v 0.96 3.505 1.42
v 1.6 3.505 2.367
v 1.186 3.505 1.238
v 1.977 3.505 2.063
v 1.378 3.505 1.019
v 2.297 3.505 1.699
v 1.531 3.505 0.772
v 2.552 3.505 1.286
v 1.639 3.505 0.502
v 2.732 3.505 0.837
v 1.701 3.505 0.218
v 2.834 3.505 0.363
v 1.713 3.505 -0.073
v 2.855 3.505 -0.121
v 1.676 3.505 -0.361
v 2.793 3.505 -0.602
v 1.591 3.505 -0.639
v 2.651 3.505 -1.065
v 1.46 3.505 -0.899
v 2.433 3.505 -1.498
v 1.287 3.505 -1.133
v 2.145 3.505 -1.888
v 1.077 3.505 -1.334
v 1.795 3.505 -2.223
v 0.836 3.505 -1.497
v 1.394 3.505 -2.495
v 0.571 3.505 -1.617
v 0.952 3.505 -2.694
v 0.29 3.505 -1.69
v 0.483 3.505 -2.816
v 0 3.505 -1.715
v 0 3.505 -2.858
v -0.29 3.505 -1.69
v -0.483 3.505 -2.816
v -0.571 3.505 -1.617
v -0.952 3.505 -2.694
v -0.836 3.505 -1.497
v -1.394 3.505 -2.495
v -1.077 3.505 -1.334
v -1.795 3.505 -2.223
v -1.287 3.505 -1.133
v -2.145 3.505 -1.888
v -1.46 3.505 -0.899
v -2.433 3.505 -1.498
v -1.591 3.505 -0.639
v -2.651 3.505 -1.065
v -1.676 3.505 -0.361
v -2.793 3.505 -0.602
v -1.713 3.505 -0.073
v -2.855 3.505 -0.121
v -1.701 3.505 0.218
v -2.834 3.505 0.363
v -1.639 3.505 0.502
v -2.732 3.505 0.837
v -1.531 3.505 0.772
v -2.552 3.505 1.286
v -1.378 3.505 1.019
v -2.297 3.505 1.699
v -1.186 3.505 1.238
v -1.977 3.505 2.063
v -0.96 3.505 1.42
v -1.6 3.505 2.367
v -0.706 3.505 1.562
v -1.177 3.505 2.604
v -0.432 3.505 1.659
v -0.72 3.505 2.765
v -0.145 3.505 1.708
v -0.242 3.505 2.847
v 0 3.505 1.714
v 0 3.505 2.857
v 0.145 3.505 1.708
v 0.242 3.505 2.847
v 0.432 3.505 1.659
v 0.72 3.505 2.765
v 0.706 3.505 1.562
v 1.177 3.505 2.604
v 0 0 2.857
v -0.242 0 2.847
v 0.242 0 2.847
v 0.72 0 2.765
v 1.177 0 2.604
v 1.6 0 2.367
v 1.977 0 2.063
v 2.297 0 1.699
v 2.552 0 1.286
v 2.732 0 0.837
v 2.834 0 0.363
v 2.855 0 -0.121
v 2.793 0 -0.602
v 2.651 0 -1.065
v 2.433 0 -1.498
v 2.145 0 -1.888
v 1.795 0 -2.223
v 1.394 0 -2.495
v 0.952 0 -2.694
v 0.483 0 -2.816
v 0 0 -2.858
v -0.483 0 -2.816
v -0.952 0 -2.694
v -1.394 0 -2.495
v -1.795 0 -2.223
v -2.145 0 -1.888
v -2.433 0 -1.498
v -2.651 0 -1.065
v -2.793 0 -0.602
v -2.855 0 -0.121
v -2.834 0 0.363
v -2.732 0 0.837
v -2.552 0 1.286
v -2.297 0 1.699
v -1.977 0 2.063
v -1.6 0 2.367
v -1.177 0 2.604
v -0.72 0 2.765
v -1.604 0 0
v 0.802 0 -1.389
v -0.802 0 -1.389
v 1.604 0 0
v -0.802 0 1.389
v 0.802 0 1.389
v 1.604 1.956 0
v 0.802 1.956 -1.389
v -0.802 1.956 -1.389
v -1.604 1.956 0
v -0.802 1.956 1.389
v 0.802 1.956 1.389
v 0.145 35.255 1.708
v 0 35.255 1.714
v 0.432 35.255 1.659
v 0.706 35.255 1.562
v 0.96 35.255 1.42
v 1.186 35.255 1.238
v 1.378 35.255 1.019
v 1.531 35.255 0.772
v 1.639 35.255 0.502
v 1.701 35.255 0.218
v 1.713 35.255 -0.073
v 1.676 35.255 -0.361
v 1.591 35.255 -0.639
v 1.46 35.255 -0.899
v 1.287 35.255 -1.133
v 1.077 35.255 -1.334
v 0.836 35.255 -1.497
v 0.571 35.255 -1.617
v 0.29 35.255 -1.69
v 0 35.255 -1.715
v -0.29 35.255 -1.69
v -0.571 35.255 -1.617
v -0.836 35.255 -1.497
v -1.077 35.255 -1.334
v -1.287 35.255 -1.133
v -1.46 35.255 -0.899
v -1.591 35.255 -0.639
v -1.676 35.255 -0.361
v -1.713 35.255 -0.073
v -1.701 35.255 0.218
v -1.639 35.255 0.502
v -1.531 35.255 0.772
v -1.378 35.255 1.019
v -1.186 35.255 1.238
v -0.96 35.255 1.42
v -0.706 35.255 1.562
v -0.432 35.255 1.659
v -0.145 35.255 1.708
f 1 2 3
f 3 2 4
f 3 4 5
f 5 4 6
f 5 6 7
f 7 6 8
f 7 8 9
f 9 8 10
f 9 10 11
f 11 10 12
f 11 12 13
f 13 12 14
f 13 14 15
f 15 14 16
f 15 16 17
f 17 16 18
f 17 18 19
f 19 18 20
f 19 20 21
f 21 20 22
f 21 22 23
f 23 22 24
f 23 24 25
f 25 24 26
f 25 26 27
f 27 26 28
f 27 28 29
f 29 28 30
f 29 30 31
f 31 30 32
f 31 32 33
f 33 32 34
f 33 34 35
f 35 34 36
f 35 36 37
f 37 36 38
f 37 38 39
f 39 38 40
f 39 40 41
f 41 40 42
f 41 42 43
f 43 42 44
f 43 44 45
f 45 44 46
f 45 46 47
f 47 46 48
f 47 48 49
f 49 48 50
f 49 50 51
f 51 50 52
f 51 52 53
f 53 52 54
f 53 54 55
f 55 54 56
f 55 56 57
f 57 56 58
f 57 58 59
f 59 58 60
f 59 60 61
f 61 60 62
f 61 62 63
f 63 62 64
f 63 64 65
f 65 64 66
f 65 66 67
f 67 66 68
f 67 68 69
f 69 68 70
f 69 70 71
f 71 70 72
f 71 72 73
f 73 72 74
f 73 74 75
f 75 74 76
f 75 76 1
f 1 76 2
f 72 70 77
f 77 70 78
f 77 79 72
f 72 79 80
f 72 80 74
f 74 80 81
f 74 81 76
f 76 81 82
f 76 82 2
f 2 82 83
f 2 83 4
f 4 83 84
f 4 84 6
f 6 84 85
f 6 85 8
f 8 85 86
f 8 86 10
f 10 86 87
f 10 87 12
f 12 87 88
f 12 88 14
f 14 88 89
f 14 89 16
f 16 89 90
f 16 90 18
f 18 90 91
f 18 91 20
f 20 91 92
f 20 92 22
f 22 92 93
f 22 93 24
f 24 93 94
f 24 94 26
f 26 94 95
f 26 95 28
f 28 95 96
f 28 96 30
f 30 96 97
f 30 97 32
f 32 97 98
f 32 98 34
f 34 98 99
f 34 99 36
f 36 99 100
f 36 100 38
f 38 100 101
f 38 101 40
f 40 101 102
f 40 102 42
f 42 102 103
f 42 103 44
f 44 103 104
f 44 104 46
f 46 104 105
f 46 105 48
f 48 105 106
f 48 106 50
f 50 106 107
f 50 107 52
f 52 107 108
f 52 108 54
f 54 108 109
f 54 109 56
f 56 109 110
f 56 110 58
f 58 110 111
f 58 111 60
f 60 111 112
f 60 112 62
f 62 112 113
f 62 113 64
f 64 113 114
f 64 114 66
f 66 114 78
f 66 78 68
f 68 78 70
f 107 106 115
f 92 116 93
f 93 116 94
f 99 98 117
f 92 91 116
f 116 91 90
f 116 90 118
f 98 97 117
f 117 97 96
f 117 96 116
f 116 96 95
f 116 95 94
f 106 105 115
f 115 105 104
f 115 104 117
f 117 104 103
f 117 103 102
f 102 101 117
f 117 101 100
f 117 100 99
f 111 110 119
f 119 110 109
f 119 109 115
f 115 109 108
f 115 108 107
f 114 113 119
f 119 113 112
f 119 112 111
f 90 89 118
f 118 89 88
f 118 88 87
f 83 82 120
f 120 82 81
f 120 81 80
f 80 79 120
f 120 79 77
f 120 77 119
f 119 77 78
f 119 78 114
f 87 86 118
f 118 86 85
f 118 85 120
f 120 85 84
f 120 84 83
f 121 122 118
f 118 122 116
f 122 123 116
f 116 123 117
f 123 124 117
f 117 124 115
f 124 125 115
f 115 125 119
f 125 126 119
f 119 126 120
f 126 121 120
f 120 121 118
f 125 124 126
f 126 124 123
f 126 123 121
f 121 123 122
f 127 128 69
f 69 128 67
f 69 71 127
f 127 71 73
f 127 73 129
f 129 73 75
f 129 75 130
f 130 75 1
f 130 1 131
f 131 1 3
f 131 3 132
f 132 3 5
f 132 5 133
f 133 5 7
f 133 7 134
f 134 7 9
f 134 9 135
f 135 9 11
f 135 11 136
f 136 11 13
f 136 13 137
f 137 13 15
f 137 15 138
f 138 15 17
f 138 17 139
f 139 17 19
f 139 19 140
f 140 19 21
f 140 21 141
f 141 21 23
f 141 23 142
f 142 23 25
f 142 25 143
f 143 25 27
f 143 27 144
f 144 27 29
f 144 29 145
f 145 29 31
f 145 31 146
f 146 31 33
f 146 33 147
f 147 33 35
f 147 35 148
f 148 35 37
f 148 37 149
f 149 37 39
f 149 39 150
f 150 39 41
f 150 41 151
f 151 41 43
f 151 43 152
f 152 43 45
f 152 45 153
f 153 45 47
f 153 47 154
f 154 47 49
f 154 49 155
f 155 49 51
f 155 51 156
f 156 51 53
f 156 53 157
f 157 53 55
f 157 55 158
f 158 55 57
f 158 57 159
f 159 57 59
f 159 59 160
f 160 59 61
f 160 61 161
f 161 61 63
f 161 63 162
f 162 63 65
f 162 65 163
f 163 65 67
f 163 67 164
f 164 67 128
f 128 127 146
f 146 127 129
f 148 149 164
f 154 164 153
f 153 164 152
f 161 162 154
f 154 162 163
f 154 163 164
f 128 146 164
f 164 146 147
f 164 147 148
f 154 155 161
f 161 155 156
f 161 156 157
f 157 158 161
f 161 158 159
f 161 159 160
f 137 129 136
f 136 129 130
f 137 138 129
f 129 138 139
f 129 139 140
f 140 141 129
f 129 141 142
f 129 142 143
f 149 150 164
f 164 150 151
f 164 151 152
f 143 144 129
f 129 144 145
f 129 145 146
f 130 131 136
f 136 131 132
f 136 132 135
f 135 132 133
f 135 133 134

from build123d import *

# Parameters (mm, degrees)
SKETCH1_R           = 2.8575
BOSS_EXTRUDE1_DEPTH = 3.5052
CUT_EXTRUDE1_DEPTH  = 1.9558
SKETCH3_R           = 1.7145
BOSS_EXTRUDE2_DEPTH = 31.75


with BuildPart() as part:
    # Sketch1 → Boss-Extrude1 (new body)
    with BuildSketch(Plane(origin=(0, 0, 0), x_dir=(1, 0, 0), z_dir=(0, 1, 0))):
        Circle(SKETCH1_R)
    extrude(amount=BOSS_EXTRUDE1_DEPTH)

    # Sketch2 → Cut-Extrude1 (cut)
    with BuildSketch(Plane.XZ):
        Polygon((1.603951217, 0), (0.801975608, 1.3890625), (-0.801975608, 1.3890625), (-1.603951217, 0), (-0.801975608, -1.3890625), (0.801975608, -1.3890625), align=None)
    extrude(amount=-CUT_EXTRUDE1_DEPTH, mode=Mode.SUBTRACT)

    # Sketch3 → Boss-Extrude2 (add)
    with BuildSketch(Plane(origin=(0, 3.5052, 0), x_dir=(1, 0, 0), z_dir=(0, 1, 0))):
        Circle(SKETCH3_R)
    extrude(amount=BOSS_EXTRUDE2_DEPTH)


solid = part.part
